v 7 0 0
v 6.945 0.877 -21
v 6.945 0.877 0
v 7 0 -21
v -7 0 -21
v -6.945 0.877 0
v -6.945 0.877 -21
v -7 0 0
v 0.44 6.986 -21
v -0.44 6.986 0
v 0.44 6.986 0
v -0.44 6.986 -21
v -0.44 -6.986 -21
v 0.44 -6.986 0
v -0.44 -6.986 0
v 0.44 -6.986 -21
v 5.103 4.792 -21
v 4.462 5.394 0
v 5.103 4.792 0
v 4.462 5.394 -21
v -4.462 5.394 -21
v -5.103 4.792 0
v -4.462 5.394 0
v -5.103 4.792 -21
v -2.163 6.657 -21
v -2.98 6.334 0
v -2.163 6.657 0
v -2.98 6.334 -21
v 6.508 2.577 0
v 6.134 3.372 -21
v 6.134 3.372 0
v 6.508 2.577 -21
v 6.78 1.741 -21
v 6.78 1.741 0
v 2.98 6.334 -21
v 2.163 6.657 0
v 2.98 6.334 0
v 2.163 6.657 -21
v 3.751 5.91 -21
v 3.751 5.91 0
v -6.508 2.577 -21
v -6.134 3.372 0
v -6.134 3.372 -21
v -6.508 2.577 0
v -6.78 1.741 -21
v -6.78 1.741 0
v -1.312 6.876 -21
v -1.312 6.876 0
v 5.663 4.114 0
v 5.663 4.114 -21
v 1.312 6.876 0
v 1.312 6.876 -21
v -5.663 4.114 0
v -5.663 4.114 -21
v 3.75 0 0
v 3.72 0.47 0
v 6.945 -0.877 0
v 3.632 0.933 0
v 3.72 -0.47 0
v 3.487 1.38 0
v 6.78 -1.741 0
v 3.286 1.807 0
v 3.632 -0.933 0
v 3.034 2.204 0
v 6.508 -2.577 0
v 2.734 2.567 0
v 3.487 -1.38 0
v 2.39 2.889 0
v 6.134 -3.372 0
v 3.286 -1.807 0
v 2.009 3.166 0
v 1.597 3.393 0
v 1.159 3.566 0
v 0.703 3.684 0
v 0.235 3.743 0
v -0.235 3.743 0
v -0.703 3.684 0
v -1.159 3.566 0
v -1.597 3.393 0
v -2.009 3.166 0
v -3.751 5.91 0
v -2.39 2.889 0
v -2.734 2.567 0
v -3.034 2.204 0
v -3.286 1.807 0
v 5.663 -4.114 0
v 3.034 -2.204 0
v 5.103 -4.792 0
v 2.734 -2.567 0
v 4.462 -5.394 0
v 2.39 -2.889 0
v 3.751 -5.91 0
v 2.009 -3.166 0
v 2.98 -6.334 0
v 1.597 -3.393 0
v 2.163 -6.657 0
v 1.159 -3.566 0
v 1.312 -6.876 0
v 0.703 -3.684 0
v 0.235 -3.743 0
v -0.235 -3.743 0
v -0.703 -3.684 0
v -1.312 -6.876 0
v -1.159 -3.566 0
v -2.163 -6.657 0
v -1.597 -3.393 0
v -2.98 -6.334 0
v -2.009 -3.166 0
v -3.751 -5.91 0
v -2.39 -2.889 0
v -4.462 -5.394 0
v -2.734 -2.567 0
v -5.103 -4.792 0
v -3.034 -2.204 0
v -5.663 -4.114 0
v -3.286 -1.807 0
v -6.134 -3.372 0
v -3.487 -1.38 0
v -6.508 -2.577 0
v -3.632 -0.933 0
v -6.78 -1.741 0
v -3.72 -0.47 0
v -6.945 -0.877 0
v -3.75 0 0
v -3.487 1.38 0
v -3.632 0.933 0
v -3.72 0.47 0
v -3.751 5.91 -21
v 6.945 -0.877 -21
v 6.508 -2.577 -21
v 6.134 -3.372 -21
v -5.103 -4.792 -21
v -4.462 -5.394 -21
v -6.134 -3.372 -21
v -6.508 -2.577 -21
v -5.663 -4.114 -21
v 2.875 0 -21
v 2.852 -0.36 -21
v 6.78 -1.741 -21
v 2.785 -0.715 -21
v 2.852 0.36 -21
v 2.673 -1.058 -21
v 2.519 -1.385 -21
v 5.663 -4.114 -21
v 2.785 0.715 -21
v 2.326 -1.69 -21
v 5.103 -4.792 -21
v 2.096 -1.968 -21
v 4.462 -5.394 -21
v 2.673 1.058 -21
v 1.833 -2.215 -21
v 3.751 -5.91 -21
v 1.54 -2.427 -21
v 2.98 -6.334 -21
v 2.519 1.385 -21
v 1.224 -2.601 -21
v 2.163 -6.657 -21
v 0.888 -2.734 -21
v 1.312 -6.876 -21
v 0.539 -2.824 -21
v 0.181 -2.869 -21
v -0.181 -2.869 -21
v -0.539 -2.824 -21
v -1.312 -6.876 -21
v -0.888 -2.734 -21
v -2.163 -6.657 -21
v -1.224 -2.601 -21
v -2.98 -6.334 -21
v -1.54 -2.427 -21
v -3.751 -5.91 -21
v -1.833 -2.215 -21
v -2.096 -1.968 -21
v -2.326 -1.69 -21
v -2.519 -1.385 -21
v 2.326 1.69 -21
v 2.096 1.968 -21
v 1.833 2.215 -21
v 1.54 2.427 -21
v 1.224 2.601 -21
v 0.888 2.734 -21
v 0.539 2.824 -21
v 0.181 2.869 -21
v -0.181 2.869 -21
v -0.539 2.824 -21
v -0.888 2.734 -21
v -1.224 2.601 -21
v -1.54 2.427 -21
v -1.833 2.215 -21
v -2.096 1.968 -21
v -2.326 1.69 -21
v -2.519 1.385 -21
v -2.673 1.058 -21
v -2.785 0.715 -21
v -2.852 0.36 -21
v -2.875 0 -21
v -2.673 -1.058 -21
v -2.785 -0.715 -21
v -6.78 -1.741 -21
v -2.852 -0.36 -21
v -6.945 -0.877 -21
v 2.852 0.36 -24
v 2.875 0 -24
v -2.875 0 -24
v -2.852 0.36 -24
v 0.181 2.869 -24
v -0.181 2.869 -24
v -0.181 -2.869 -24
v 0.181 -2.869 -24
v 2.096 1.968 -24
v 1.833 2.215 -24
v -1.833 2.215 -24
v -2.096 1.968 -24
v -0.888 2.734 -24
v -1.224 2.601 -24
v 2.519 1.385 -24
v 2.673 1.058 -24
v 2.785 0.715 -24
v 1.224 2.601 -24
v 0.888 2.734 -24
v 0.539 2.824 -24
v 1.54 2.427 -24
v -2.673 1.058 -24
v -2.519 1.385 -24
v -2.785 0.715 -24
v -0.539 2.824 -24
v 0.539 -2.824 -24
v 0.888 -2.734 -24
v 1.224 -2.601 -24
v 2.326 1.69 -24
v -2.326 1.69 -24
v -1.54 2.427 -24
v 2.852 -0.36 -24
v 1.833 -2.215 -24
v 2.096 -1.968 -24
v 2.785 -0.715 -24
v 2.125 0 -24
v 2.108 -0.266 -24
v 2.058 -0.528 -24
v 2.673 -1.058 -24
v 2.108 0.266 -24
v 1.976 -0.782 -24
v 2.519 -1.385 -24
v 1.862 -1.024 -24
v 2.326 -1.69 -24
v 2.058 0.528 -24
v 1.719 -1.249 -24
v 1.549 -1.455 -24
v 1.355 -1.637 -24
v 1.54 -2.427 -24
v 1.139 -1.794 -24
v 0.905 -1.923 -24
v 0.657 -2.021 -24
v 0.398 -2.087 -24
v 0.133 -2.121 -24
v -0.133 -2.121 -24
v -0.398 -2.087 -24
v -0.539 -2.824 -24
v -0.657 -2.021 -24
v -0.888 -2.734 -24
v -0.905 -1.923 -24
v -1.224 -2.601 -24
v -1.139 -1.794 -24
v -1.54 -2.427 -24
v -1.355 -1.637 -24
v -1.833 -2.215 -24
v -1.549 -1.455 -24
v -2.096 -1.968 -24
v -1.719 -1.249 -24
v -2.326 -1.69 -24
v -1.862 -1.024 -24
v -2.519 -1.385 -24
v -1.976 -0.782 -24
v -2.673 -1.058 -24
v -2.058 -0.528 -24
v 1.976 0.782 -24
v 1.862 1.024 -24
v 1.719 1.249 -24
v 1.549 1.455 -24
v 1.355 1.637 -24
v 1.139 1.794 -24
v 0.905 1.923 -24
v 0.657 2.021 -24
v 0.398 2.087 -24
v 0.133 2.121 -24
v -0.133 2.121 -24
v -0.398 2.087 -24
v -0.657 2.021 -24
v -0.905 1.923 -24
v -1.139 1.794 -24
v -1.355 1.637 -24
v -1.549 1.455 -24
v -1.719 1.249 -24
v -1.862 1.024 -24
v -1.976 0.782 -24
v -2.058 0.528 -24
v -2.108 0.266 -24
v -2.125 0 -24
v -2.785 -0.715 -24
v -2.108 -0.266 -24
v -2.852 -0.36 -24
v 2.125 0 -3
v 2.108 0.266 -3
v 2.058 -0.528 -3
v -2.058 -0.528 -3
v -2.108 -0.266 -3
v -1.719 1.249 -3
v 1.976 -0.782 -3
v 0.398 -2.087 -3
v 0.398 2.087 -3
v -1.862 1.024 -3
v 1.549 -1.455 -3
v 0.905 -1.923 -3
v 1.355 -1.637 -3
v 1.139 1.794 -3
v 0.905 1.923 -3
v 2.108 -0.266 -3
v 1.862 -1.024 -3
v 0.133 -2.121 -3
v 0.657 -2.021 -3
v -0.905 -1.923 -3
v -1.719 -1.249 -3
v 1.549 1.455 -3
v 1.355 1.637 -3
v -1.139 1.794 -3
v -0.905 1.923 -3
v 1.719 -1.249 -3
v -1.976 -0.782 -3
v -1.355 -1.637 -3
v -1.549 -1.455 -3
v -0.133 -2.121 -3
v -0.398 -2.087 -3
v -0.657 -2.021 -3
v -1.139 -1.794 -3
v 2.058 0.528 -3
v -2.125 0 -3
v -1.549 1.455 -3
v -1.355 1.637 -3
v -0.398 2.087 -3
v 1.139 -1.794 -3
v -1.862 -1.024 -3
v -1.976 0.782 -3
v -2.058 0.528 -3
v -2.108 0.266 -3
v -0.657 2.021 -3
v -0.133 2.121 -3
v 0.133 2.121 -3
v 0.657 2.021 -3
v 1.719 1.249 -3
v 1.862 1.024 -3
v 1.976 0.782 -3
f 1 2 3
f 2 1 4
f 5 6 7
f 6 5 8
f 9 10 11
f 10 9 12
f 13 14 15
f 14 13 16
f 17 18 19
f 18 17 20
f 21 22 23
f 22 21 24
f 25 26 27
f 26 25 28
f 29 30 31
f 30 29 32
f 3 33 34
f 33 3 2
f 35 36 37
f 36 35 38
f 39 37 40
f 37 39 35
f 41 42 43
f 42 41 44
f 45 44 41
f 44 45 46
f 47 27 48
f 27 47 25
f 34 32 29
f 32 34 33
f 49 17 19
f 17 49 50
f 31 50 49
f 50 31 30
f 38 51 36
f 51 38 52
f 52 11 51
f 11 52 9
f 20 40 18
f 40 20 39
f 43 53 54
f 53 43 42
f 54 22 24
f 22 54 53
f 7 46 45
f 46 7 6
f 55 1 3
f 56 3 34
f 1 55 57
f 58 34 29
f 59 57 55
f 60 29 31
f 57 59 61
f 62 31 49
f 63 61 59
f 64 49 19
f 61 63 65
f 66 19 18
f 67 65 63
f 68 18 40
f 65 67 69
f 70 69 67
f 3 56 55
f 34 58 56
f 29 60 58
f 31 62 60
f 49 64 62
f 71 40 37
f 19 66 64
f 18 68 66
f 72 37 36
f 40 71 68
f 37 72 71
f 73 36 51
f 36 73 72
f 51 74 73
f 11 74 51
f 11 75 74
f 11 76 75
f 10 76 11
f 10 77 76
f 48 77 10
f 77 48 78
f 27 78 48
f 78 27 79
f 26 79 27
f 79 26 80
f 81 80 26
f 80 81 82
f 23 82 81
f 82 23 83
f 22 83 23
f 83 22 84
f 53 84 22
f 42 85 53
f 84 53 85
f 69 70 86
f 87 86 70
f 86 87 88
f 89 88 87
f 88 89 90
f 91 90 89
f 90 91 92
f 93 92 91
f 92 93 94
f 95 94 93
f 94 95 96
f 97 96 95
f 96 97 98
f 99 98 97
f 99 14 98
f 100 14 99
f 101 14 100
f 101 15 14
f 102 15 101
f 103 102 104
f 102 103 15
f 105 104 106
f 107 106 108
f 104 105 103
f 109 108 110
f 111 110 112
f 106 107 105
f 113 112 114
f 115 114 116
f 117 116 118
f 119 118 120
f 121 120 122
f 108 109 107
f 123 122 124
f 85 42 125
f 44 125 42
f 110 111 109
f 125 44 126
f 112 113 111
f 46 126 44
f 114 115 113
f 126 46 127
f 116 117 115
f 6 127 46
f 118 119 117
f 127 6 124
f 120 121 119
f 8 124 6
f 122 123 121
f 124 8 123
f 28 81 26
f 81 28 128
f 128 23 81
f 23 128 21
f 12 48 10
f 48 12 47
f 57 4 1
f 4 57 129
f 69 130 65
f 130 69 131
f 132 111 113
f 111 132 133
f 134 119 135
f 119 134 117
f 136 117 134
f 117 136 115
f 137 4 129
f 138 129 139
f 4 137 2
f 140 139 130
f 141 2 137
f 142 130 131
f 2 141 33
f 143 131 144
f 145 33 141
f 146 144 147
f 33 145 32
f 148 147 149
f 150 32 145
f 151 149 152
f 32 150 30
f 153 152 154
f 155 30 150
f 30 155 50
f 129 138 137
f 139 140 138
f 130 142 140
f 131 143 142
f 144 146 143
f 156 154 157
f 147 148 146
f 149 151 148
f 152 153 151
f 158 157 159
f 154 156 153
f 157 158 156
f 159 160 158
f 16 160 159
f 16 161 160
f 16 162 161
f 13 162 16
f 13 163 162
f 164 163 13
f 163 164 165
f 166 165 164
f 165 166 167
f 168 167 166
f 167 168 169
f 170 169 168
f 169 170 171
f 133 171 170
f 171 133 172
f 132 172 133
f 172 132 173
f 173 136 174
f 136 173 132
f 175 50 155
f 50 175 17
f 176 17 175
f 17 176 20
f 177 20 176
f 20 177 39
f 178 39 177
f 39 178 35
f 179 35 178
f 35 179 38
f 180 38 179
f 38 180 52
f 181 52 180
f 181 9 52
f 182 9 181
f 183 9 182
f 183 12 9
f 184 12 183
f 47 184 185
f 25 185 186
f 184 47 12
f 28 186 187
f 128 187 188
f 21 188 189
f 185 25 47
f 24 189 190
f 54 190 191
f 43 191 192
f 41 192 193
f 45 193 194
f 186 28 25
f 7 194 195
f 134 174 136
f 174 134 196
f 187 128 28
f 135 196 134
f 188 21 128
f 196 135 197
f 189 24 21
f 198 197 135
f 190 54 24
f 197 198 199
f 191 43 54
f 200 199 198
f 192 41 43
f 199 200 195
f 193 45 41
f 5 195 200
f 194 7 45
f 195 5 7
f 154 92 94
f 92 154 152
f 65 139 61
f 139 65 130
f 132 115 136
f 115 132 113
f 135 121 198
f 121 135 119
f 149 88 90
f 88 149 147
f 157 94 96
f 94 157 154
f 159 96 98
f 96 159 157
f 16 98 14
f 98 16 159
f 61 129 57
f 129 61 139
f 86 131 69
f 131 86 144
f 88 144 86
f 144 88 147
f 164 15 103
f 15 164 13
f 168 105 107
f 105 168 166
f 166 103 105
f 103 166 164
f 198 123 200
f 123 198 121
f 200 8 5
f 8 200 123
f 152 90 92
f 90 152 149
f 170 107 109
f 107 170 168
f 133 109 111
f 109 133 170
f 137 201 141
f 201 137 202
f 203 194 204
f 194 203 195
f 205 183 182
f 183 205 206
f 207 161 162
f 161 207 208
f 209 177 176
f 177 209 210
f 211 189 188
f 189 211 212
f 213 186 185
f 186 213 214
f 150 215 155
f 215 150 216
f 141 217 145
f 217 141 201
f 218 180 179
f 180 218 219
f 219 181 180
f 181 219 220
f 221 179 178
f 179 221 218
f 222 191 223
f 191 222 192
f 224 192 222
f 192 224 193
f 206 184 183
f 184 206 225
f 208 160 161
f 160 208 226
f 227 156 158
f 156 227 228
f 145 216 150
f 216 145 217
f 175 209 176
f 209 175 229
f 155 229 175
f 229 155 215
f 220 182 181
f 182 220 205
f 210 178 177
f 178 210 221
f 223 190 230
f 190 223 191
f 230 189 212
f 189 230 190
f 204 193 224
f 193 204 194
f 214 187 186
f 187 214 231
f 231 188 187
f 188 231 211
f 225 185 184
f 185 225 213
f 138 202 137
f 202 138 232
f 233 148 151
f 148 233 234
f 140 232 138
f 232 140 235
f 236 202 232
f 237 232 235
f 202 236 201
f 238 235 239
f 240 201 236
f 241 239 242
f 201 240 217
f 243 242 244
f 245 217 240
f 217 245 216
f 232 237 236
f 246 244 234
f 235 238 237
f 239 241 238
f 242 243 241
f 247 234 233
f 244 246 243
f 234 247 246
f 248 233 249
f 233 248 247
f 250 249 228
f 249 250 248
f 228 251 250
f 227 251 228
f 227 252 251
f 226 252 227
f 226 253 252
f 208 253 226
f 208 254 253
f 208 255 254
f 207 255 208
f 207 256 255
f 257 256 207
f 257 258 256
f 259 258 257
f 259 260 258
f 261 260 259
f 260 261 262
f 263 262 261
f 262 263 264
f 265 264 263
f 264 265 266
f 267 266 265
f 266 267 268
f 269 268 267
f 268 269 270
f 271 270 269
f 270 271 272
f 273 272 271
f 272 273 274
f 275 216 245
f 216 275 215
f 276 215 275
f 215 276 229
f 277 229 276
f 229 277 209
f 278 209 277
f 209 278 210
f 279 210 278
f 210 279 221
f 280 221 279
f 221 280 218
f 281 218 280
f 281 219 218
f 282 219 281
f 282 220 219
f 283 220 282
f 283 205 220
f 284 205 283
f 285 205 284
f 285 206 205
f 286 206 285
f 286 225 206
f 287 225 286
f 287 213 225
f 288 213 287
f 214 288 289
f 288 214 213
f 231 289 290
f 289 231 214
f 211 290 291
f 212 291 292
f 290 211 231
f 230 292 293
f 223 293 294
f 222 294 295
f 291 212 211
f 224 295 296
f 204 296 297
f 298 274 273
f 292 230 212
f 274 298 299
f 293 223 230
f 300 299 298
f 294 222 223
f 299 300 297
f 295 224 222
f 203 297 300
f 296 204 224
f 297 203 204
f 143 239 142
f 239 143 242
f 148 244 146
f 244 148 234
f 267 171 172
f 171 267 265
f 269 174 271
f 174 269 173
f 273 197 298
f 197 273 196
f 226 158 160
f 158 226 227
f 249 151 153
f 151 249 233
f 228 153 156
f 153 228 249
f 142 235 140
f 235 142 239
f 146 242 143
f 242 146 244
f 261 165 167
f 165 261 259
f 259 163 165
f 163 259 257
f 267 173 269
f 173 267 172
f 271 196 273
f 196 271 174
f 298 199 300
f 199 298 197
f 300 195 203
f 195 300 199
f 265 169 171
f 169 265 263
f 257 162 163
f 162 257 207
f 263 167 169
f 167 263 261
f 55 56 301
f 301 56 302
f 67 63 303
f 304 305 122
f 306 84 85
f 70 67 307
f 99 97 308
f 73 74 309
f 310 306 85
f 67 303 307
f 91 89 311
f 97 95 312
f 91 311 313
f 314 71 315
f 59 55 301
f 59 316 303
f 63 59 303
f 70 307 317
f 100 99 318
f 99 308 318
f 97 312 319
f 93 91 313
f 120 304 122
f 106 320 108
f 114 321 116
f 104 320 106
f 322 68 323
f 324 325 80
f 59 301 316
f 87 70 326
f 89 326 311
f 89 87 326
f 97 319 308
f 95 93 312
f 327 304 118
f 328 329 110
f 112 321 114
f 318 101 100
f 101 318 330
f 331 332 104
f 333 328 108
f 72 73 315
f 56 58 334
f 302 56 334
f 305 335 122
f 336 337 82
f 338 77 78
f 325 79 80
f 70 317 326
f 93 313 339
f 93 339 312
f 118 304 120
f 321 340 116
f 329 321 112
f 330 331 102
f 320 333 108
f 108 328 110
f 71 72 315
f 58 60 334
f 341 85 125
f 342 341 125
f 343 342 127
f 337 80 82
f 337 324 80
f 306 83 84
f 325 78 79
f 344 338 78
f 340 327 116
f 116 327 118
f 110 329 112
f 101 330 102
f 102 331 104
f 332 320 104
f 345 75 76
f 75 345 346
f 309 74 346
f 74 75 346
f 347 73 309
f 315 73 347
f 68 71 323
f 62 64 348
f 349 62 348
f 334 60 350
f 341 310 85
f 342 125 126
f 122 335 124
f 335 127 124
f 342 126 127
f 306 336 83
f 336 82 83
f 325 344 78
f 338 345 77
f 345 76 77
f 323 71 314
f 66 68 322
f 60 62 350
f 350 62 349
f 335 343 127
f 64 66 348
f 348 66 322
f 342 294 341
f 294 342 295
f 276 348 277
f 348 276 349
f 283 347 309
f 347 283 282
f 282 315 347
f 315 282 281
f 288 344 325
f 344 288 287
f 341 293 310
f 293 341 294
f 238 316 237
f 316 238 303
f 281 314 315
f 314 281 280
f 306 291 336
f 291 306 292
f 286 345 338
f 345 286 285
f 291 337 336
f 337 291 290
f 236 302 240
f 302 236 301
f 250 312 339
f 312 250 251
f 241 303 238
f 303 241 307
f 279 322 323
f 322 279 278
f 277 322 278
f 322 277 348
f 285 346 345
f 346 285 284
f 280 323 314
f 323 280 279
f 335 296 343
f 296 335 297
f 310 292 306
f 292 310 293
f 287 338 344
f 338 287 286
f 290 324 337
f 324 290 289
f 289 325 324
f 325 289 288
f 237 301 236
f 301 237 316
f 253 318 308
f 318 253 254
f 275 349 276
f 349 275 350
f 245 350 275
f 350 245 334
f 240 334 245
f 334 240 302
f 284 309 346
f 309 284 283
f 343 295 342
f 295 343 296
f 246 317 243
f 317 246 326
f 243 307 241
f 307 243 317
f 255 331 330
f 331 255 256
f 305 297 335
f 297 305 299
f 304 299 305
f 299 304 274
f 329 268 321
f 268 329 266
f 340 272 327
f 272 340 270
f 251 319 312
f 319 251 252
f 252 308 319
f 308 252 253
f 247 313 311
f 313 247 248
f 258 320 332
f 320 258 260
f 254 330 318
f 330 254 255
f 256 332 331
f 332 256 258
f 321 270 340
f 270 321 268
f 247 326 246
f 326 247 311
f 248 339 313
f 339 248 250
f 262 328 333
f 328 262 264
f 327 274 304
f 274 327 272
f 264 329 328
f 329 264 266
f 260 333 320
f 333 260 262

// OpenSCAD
$fn = 50;

difference() {
	union() {
		translate(v = [0, 0, -21.0]) {
			cylinder(h = 21, r = 7.0);
		}
		#translate(v = [0, 0, -24.0]) {
			cylinder(h = 24, r = 2.875);
		}
	}
	union() {
		translate(v = [0, 0, 0]) {
			rotate(a = [0, 0, 0]) {
				difference() {
					union() {
						translate(v = [0, 0, -24.0]) {
							cylinder(h = 24, r = 2.0);
						}
						translate(v = [0, 0, -3]) {
							cylinder(h = 3, r1 = 2.125, r2 = 3.75);
						}
						translate(v = [0, 0, -24.0]) {
							cylinder(h = 24, r = 2.125);
						}
						translate(v = [0, 0, -24.0]) {
							cylinder(h = 24, r = 2.0);
						}
					}
					union();
				}
			}
		}
	}
}
